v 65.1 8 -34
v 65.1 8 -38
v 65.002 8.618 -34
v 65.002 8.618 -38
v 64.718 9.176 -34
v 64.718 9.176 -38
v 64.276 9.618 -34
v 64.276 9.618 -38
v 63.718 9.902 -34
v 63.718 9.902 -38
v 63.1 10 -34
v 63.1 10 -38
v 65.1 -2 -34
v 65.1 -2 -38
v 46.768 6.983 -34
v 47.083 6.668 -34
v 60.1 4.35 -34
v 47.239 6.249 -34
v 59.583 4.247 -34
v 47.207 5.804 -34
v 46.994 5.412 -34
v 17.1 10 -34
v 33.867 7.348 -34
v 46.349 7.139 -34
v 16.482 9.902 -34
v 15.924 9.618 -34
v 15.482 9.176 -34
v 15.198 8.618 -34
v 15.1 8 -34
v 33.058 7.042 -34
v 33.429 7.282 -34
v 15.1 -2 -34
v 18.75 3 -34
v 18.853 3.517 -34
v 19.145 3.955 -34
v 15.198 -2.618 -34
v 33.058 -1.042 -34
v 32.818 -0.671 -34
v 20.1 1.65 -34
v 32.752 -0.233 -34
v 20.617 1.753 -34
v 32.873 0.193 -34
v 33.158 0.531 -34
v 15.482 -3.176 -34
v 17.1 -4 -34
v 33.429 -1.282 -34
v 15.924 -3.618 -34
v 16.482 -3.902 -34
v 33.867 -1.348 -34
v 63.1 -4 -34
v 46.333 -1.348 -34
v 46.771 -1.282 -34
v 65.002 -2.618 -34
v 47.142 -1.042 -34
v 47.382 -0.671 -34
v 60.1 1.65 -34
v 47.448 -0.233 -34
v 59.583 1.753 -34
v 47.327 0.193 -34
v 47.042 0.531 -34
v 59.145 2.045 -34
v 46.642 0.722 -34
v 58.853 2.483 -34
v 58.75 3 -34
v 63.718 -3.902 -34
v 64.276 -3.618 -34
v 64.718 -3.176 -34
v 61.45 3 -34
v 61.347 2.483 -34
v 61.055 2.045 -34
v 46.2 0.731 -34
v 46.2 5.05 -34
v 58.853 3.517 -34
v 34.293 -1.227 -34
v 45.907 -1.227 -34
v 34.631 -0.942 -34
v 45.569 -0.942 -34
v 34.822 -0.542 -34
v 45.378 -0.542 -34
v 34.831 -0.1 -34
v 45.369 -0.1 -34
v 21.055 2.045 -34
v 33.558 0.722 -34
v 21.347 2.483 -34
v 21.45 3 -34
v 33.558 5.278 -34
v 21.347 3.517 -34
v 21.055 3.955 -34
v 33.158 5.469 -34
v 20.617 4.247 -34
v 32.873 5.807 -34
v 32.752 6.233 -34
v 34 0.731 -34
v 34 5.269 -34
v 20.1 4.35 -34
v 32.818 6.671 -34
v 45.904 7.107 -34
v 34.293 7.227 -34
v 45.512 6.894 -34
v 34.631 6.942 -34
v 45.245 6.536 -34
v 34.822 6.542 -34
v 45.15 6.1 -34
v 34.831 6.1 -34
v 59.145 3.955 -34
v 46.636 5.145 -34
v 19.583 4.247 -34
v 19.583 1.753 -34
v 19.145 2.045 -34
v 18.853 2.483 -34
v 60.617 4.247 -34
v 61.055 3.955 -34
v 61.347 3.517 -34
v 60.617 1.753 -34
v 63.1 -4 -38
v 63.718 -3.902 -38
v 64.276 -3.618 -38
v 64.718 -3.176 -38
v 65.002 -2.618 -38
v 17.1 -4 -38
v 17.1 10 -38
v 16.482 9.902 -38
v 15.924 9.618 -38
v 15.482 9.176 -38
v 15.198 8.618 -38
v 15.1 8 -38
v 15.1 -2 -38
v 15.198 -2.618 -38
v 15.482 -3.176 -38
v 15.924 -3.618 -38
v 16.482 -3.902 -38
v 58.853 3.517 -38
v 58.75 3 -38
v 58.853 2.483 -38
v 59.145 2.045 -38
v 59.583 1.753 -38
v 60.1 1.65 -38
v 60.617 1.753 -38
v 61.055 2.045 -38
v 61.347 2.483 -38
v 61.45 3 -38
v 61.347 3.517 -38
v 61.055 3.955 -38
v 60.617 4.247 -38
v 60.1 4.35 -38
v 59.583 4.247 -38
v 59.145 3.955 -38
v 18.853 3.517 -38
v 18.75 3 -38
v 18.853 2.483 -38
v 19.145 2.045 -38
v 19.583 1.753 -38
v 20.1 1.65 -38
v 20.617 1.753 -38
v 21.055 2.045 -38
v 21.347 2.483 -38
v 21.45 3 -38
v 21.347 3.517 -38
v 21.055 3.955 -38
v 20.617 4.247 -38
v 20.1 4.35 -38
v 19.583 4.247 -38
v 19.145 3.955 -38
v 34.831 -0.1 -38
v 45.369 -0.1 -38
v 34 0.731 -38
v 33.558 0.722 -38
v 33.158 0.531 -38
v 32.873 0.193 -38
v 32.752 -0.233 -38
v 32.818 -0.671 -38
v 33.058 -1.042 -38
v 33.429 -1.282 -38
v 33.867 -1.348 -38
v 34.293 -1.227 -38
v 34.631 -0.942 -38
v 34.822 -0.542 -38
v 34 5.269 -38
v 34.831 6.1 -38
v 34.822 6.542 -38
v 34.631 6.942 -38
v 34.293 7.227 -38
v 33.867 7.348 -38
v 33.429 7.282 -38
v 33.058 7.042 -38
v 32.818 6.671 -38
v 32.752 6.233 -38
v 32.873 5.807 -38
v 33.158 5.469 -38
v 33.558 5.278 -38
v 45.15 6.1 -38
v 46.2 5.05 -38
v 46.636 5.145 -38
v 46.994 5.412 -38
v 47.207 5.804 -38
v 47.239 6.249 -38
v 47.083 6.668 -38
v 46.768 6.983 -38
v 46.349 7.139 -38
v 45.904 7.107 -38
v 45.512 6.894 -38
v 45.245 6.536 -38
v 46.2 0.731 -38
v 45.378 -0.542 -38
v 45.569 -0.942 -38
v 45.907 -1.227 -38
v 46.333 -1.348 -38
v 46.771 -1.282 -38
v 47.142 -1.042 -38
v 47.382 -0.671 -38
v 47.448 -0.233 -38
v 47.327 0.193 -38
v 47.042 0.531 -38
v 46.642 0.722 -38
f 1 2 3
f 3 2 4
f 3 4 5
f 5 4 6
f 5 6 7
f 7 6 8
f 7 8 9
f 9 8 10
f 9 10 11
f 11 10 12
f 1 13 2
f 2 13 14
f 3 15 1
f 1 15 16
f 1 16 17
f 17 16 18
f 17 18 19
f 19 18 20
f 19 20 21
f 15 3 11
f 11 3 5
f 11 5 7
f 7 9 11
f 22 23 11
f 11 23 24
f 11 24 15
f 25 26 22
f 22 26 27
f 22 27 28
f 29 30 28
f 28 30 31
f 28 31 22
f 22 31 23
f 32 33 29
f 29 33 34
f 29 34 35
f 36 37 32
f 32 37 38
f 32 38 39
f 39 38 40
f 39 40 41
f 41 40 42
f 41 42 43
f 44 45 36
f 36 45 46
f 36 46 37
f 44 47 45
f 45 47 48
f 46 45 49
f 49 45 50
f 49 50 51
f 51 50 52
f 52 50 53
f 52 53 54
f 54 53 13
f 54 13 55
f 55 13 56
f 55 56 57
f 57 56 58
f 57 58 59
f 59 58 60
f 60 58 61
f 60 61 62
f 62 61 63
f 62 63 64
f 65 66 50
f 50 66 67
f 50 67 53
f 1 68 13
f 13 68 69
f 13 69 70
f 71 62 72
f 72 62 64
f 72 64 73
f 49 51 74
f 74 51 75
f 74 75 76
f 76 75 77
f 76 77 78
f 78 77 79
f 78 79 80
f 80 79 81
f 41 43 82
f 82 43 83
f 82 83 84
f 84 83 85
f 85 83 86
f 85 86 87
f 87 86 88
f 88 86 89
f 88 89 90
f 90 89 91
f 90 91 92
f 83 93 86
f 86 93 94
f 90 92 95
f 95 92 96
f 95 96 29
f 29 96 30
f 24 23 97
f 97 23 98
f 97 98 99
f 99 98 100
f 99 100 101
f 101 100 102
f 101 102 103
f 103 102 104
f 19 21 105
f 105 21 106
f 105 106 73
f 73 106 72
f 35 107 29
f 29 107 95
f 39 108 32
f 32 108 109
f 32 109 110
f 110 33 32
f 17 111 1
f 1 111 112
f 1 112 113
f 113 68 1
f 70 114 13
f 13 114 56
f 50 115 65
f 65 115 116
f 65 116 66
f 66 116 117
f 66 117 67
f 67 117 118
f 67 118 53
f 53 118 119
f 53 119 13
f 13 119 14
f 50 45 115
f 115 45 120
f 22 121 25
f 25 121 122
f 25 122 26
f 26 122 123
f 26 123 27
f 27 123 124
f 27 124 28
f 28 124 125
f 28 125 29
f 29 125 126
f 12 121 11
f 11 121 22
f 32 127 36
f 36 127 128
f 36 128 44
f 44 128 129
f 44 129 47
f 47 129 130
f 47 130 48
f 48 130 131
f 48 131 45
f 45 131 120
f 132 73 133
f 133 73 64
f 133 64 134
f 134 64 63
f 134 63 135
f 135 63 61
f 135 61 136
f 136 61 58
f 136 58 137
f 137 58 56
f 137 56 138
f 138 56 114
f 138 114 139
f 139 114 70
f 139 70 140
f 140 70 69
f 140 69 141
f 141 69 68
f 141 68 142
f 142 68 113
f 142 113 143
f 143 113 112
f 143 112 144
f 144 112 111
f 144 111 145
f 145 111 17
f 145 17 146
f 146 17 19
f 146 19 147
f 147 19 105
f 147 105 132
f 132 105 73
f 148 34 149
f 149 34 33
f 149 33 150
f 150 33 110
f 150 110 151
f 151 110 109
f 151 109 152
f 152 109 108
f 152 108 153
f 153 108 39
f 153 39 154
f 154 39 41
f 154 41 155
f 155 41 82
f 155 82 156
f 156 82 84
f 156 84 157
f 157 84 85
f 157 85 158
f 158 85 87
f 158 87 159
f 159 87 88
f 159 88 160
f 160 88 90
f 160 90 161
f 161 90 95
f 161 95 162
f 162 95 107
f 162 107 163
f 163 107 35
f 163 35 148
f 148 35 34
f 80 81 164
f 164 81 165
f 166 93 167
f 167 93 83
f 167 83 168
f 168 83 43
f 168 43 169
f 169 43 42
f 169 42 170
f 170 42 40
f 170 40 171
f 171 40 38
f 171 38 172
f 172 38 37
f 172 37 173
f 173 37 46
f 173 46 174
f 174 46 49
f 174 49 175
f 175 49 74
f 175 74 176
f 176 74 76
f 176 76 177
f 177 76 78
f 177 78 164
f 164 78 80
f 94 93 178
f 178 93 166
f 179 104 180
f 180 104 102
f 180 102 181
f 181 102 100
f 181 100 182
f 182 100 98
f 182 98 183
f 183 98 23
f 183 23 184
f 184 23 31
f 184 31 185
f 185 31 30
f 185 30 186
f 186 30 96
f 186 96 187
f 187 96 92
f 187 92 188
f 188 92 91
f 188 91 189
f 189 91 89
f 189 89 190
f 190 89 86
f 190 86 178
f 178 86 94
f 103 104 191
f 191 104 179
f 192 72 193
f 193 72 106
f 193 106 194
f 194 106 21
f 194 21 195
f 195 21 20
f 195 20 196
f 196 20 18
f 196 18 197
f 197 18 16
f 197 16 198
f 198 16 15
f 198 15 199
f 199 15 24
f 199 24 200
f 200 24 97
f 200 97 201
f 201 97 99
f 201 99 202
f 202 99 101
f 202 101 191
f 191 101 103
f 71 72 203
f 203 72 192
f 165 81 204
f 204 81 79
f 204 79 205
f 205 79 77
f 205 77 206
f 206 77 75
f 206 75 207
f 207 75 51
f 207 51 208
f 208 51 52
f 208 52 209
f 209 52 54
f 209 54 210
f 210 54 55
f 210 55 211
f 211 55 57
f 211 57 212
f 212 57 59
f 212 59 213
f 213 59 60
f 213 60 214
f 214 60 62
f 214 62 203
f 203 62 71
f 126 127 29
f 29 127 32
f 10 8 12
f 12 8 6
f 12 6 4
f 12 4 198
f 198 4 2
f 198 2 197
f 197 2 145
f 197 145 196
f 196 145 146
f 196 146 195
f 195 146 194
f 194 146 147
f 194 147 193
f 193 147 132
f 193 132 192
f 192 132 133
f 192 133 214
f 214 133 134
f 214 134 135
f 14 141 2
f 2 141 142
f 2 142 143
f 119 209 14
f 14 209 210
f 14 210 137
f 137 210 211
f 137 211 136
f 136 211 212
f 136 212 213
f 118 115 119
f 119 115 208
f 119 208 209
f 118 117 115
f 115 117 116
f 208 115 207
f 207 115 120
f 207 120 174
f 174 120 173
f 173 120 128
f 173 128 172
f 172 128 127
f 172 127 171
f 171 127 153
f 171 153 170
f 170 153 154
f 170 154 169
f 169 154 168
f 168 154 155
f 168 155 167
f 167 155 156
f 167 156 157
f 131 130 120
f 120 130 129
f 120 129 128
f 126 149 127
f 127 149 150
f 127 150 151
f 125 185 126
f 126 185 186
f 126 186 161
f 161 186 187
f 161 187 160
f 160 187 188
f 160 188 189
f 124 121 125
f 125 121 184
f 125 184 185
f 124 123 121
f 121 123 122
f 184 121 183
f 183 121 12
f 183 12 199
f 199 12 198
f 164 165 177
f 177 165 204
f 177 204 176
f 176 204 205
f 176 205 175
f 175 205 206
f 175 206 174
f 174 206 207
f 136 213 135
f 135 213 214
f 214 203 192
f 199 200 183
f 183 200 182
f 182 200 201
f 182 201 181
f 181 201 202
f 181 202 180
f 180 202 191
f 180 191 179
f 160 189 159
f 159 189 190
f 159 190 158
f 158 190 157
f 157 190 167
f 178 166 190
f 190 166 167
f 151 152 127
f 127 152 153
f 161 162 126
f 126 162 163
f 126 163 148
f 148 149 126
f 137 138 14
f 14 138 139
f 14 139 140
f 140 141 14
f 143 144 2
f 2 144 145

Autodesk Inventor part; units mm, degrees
ref_plane "YZ Plane" through (0, 0, 0) normal (1, 0, 0) x (0, 1, 0)
ref_plane "XZ Plane" through (0, 0, 0) normal (0, 1, 0) x (-1, 0, 0)
ref_plane "XY Plane" through (0, 0, 0) normal (0, 0, 1) x (1, 0, 0)
ref_plane "작업 평면1" through (80.2, 0, -34) normal (0, 0, -1) x (-1, 0, 0)
sketch "스케치1" plane through (80.2, 0, -34) normal (0, 0, -1) x (-1, 0, 0)
  line L0 (34.1, 0) -> (46.1, 0) projected
  line L1 (46.1, 0) -> (46.1, 6) projected
  line L2 (34.1, 6) -> (46.1, 6) projected
  line L3 (34.1, 0) -> (34.1, 6) projected
  line L4 (46.2, 6.1) -> (46.2, -0.1)
  line L5 (46.2, -0.1) -> (34, -0.1)
  line L6 (34, -0.1) -> (34, 6.1)
  line L7 (34, 6.1) -> (46.2, 6.1)
  line L8 (33.1, 0) -> (33.1, 6) projected
  line L9 (0, 6) -> (33.1, 6) projected
  line L10 (0, 0) -> (0, 6) projected
  line L11 (0, 0) -> (33.1, 0) projected
  circle A0 centre (20.1, 3) radius 1.35 projected
  line L12 (47.1, 6) -> (47.1, 0) projected
  line L13 (47.1, 0) -> (80.2, 0) projected
  line L14 (80.2, 0) -> (80.2, 6) projected
  line L15 (47.1, 6) -> (80.2, 6) projected
  circle A1 centre (60.1, 3) radius 1.35 projected
  line L16 (50.1, 10) -> (50.1, -4)
  line L17 (50.1, -4) -> (30.1, -4)
  line L18 (30.1, -4) -> (30.1, 10)
  line L19 (30.1, 10) -> (50.1, 10)
  line L20 (15.1, -4) -> (25.1, -4)
  line L21 (25.1, -4) -> (25.1, 10)
  line L22 (25.1, 10) -> (15.1, 10)
  line L23 (15.1, 10) -> (15.1, -4)
  line L24 (15.1, -4) -> (25.1, 10) construction
  line L25 (25.1, -4) -> (15.1, 10) construction
  line L26 (55.1, -4) -> (65.1, -4)
  line L27 (65.1, -4) -> (65.1, 10)
  line L28 (65.1, 10) -> (55.1, 10)
  line L29 (55.1, 10) -> (55.1, -4)
  line L30 (55.1, -4) -> (65.1, 10) construction
  line L31 (65.1, -4) -> (55.1, 10) construction
  line L32 (15.1, 10) -> (65.1, 10)
  line L33 (65.1, 10) -> (65.1, -4)
  line L34 (65.1, -4) -> (15.1, -4)
  line L35 (15.1, -4) -> (15.1, 10)
  circle A2 centre (34, 6.1) radius 1.05
  circle A3 centre (33.8, -0.3) radius 1.05
  circle A4 centre (46.4, -0.3) radius 1.05
  circle A5 centre (46.4, 6.3) radius 1.05
  point P0 (34, 0.7308)
  point P1 (34, 5.05)
  point P2 (35.05, 6.1)
  point P3 (45.3692, 6.1)
  point P4 (46.2, 5.2692)
  point P5 (46.2, 0.7308)
  point P6 (45.3692, -0.1)
  point P7 (34.8308, -0.1)
  point P8 (50.1, -4)
  dimension "d0" = 0.1
  dimension "d1" = 4
  dimension "d2" = 10
  dimension "d3" = 14
  dimension "d4" = 10
  dimension "d5" = 14
  dimension "d6" = 2.1
  dimension "d7" = 2.1
  dimension "d8" = 2.1
  dimension "d9" = 2.1
extrude "돌출1" add sketch "스케치1" along normal blind 4 contours L5 A4 L13 L16 L17 L18 L11 A3 | A3 L8 A2 L6 | A3 L11 L18 L9 A2 L8 | L4 A5 L12 A4 | A2 L9 L18 L19 L16 L15 A5 L7 | L12 A5 L15 L16 L13 A4 | L18 L34 L21 L11 | L11 L21 L9 L18 | L16 L15 L29 L13 | L13 L29 L34 L16 | L21 L20 L23 L11 | L11 L23 L9 L21 | L9 L21 L32 L18 | L29 L15 L27 L13 | L13 L27 L26 L29 | L16 L32 L29 L15 | L9 L23 L22 L21 | L29 L28 L27 L15
fillet "모깎기1" radius 2 4 edges at (15.1, -4, -36) (15.1, 10, -36) (65.1, -4, -36) (65.1, 10, -36)
properties part number "zig8"
